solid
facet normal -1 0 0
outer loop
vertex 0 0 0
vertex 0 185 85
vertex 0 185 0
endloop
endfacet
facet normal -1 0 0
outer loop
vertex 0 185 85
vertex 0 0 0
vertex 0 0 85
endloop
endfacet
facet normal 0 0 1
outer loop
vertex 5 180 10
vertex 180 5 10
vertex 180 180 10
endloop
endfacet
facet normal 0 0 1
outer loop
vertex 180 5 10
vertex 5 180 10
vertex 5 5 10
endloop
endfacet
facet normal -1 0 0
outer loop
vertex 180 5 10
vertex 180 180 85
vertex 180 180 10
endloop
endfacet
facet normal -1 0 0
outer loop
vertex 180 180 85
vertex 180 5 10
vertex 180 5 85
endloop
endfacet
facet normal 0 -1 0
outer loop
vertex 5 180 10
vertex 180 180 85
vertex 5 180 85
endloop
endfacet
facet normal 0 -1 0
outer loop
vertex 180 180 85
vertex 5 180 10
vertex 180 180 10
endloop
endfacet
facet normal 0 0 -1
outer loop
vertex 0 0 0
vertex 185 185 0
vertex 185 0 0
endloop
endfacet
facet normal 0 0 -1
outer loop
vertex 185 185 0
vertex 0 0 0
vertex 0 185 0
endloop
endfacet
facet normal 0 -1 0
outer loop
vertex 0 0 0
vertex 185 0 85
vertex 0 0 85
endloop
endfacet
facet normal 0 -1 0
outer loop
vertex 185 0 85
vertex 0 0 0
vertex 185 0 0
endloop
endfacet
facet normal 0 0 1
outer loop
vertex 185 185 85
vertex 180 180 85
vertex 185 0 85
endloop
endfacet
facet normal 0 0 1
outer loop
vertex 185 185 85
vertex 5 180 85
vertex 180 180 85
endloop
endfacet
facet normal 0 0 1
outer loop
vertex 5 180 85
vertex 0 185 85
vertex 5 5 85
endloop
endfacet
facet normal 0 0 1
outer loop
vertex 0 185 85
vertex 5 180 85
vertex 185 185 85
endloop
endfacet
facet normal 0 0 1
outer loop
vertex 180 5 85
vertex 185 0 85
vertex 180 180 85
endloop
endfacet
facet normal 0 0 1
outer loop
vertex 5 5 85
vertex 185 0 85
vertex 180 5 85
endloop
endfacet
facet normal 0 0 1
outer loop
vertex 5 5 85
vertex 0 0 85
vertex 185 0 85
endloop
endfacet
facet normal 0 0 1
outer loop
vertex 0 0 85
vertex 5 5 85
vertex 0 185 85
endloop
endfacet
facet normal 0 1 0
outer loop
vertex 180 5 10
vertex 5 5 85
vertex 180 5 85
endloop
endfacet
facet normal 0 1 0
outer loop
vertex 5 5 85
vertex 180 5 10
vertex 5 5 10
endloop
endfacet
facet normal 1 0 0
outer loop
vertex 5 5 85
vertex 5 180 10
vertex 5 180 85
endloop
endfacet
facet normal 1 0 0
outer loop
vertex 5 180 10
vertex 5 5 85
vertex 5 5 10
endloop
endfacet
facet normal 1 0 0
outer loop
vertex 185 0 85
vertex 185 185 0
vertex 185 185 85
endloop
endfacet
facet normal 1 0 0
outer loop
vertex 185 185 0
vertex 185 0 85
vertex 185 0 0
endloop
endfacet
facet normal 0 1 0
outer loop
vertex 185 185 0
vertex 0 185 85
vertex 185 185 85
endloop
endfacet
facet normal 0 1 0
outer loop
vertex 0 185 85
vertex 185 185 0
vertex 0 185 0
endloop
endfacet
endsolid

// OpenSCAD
cube([180,180,10]);
cube([180,5,85]);
cube([5,180,85]);

translate([180,0,0]){
    cube([5,180,85]);
}

translate([0,180,0]){
    cube([185,5,85]);
}
